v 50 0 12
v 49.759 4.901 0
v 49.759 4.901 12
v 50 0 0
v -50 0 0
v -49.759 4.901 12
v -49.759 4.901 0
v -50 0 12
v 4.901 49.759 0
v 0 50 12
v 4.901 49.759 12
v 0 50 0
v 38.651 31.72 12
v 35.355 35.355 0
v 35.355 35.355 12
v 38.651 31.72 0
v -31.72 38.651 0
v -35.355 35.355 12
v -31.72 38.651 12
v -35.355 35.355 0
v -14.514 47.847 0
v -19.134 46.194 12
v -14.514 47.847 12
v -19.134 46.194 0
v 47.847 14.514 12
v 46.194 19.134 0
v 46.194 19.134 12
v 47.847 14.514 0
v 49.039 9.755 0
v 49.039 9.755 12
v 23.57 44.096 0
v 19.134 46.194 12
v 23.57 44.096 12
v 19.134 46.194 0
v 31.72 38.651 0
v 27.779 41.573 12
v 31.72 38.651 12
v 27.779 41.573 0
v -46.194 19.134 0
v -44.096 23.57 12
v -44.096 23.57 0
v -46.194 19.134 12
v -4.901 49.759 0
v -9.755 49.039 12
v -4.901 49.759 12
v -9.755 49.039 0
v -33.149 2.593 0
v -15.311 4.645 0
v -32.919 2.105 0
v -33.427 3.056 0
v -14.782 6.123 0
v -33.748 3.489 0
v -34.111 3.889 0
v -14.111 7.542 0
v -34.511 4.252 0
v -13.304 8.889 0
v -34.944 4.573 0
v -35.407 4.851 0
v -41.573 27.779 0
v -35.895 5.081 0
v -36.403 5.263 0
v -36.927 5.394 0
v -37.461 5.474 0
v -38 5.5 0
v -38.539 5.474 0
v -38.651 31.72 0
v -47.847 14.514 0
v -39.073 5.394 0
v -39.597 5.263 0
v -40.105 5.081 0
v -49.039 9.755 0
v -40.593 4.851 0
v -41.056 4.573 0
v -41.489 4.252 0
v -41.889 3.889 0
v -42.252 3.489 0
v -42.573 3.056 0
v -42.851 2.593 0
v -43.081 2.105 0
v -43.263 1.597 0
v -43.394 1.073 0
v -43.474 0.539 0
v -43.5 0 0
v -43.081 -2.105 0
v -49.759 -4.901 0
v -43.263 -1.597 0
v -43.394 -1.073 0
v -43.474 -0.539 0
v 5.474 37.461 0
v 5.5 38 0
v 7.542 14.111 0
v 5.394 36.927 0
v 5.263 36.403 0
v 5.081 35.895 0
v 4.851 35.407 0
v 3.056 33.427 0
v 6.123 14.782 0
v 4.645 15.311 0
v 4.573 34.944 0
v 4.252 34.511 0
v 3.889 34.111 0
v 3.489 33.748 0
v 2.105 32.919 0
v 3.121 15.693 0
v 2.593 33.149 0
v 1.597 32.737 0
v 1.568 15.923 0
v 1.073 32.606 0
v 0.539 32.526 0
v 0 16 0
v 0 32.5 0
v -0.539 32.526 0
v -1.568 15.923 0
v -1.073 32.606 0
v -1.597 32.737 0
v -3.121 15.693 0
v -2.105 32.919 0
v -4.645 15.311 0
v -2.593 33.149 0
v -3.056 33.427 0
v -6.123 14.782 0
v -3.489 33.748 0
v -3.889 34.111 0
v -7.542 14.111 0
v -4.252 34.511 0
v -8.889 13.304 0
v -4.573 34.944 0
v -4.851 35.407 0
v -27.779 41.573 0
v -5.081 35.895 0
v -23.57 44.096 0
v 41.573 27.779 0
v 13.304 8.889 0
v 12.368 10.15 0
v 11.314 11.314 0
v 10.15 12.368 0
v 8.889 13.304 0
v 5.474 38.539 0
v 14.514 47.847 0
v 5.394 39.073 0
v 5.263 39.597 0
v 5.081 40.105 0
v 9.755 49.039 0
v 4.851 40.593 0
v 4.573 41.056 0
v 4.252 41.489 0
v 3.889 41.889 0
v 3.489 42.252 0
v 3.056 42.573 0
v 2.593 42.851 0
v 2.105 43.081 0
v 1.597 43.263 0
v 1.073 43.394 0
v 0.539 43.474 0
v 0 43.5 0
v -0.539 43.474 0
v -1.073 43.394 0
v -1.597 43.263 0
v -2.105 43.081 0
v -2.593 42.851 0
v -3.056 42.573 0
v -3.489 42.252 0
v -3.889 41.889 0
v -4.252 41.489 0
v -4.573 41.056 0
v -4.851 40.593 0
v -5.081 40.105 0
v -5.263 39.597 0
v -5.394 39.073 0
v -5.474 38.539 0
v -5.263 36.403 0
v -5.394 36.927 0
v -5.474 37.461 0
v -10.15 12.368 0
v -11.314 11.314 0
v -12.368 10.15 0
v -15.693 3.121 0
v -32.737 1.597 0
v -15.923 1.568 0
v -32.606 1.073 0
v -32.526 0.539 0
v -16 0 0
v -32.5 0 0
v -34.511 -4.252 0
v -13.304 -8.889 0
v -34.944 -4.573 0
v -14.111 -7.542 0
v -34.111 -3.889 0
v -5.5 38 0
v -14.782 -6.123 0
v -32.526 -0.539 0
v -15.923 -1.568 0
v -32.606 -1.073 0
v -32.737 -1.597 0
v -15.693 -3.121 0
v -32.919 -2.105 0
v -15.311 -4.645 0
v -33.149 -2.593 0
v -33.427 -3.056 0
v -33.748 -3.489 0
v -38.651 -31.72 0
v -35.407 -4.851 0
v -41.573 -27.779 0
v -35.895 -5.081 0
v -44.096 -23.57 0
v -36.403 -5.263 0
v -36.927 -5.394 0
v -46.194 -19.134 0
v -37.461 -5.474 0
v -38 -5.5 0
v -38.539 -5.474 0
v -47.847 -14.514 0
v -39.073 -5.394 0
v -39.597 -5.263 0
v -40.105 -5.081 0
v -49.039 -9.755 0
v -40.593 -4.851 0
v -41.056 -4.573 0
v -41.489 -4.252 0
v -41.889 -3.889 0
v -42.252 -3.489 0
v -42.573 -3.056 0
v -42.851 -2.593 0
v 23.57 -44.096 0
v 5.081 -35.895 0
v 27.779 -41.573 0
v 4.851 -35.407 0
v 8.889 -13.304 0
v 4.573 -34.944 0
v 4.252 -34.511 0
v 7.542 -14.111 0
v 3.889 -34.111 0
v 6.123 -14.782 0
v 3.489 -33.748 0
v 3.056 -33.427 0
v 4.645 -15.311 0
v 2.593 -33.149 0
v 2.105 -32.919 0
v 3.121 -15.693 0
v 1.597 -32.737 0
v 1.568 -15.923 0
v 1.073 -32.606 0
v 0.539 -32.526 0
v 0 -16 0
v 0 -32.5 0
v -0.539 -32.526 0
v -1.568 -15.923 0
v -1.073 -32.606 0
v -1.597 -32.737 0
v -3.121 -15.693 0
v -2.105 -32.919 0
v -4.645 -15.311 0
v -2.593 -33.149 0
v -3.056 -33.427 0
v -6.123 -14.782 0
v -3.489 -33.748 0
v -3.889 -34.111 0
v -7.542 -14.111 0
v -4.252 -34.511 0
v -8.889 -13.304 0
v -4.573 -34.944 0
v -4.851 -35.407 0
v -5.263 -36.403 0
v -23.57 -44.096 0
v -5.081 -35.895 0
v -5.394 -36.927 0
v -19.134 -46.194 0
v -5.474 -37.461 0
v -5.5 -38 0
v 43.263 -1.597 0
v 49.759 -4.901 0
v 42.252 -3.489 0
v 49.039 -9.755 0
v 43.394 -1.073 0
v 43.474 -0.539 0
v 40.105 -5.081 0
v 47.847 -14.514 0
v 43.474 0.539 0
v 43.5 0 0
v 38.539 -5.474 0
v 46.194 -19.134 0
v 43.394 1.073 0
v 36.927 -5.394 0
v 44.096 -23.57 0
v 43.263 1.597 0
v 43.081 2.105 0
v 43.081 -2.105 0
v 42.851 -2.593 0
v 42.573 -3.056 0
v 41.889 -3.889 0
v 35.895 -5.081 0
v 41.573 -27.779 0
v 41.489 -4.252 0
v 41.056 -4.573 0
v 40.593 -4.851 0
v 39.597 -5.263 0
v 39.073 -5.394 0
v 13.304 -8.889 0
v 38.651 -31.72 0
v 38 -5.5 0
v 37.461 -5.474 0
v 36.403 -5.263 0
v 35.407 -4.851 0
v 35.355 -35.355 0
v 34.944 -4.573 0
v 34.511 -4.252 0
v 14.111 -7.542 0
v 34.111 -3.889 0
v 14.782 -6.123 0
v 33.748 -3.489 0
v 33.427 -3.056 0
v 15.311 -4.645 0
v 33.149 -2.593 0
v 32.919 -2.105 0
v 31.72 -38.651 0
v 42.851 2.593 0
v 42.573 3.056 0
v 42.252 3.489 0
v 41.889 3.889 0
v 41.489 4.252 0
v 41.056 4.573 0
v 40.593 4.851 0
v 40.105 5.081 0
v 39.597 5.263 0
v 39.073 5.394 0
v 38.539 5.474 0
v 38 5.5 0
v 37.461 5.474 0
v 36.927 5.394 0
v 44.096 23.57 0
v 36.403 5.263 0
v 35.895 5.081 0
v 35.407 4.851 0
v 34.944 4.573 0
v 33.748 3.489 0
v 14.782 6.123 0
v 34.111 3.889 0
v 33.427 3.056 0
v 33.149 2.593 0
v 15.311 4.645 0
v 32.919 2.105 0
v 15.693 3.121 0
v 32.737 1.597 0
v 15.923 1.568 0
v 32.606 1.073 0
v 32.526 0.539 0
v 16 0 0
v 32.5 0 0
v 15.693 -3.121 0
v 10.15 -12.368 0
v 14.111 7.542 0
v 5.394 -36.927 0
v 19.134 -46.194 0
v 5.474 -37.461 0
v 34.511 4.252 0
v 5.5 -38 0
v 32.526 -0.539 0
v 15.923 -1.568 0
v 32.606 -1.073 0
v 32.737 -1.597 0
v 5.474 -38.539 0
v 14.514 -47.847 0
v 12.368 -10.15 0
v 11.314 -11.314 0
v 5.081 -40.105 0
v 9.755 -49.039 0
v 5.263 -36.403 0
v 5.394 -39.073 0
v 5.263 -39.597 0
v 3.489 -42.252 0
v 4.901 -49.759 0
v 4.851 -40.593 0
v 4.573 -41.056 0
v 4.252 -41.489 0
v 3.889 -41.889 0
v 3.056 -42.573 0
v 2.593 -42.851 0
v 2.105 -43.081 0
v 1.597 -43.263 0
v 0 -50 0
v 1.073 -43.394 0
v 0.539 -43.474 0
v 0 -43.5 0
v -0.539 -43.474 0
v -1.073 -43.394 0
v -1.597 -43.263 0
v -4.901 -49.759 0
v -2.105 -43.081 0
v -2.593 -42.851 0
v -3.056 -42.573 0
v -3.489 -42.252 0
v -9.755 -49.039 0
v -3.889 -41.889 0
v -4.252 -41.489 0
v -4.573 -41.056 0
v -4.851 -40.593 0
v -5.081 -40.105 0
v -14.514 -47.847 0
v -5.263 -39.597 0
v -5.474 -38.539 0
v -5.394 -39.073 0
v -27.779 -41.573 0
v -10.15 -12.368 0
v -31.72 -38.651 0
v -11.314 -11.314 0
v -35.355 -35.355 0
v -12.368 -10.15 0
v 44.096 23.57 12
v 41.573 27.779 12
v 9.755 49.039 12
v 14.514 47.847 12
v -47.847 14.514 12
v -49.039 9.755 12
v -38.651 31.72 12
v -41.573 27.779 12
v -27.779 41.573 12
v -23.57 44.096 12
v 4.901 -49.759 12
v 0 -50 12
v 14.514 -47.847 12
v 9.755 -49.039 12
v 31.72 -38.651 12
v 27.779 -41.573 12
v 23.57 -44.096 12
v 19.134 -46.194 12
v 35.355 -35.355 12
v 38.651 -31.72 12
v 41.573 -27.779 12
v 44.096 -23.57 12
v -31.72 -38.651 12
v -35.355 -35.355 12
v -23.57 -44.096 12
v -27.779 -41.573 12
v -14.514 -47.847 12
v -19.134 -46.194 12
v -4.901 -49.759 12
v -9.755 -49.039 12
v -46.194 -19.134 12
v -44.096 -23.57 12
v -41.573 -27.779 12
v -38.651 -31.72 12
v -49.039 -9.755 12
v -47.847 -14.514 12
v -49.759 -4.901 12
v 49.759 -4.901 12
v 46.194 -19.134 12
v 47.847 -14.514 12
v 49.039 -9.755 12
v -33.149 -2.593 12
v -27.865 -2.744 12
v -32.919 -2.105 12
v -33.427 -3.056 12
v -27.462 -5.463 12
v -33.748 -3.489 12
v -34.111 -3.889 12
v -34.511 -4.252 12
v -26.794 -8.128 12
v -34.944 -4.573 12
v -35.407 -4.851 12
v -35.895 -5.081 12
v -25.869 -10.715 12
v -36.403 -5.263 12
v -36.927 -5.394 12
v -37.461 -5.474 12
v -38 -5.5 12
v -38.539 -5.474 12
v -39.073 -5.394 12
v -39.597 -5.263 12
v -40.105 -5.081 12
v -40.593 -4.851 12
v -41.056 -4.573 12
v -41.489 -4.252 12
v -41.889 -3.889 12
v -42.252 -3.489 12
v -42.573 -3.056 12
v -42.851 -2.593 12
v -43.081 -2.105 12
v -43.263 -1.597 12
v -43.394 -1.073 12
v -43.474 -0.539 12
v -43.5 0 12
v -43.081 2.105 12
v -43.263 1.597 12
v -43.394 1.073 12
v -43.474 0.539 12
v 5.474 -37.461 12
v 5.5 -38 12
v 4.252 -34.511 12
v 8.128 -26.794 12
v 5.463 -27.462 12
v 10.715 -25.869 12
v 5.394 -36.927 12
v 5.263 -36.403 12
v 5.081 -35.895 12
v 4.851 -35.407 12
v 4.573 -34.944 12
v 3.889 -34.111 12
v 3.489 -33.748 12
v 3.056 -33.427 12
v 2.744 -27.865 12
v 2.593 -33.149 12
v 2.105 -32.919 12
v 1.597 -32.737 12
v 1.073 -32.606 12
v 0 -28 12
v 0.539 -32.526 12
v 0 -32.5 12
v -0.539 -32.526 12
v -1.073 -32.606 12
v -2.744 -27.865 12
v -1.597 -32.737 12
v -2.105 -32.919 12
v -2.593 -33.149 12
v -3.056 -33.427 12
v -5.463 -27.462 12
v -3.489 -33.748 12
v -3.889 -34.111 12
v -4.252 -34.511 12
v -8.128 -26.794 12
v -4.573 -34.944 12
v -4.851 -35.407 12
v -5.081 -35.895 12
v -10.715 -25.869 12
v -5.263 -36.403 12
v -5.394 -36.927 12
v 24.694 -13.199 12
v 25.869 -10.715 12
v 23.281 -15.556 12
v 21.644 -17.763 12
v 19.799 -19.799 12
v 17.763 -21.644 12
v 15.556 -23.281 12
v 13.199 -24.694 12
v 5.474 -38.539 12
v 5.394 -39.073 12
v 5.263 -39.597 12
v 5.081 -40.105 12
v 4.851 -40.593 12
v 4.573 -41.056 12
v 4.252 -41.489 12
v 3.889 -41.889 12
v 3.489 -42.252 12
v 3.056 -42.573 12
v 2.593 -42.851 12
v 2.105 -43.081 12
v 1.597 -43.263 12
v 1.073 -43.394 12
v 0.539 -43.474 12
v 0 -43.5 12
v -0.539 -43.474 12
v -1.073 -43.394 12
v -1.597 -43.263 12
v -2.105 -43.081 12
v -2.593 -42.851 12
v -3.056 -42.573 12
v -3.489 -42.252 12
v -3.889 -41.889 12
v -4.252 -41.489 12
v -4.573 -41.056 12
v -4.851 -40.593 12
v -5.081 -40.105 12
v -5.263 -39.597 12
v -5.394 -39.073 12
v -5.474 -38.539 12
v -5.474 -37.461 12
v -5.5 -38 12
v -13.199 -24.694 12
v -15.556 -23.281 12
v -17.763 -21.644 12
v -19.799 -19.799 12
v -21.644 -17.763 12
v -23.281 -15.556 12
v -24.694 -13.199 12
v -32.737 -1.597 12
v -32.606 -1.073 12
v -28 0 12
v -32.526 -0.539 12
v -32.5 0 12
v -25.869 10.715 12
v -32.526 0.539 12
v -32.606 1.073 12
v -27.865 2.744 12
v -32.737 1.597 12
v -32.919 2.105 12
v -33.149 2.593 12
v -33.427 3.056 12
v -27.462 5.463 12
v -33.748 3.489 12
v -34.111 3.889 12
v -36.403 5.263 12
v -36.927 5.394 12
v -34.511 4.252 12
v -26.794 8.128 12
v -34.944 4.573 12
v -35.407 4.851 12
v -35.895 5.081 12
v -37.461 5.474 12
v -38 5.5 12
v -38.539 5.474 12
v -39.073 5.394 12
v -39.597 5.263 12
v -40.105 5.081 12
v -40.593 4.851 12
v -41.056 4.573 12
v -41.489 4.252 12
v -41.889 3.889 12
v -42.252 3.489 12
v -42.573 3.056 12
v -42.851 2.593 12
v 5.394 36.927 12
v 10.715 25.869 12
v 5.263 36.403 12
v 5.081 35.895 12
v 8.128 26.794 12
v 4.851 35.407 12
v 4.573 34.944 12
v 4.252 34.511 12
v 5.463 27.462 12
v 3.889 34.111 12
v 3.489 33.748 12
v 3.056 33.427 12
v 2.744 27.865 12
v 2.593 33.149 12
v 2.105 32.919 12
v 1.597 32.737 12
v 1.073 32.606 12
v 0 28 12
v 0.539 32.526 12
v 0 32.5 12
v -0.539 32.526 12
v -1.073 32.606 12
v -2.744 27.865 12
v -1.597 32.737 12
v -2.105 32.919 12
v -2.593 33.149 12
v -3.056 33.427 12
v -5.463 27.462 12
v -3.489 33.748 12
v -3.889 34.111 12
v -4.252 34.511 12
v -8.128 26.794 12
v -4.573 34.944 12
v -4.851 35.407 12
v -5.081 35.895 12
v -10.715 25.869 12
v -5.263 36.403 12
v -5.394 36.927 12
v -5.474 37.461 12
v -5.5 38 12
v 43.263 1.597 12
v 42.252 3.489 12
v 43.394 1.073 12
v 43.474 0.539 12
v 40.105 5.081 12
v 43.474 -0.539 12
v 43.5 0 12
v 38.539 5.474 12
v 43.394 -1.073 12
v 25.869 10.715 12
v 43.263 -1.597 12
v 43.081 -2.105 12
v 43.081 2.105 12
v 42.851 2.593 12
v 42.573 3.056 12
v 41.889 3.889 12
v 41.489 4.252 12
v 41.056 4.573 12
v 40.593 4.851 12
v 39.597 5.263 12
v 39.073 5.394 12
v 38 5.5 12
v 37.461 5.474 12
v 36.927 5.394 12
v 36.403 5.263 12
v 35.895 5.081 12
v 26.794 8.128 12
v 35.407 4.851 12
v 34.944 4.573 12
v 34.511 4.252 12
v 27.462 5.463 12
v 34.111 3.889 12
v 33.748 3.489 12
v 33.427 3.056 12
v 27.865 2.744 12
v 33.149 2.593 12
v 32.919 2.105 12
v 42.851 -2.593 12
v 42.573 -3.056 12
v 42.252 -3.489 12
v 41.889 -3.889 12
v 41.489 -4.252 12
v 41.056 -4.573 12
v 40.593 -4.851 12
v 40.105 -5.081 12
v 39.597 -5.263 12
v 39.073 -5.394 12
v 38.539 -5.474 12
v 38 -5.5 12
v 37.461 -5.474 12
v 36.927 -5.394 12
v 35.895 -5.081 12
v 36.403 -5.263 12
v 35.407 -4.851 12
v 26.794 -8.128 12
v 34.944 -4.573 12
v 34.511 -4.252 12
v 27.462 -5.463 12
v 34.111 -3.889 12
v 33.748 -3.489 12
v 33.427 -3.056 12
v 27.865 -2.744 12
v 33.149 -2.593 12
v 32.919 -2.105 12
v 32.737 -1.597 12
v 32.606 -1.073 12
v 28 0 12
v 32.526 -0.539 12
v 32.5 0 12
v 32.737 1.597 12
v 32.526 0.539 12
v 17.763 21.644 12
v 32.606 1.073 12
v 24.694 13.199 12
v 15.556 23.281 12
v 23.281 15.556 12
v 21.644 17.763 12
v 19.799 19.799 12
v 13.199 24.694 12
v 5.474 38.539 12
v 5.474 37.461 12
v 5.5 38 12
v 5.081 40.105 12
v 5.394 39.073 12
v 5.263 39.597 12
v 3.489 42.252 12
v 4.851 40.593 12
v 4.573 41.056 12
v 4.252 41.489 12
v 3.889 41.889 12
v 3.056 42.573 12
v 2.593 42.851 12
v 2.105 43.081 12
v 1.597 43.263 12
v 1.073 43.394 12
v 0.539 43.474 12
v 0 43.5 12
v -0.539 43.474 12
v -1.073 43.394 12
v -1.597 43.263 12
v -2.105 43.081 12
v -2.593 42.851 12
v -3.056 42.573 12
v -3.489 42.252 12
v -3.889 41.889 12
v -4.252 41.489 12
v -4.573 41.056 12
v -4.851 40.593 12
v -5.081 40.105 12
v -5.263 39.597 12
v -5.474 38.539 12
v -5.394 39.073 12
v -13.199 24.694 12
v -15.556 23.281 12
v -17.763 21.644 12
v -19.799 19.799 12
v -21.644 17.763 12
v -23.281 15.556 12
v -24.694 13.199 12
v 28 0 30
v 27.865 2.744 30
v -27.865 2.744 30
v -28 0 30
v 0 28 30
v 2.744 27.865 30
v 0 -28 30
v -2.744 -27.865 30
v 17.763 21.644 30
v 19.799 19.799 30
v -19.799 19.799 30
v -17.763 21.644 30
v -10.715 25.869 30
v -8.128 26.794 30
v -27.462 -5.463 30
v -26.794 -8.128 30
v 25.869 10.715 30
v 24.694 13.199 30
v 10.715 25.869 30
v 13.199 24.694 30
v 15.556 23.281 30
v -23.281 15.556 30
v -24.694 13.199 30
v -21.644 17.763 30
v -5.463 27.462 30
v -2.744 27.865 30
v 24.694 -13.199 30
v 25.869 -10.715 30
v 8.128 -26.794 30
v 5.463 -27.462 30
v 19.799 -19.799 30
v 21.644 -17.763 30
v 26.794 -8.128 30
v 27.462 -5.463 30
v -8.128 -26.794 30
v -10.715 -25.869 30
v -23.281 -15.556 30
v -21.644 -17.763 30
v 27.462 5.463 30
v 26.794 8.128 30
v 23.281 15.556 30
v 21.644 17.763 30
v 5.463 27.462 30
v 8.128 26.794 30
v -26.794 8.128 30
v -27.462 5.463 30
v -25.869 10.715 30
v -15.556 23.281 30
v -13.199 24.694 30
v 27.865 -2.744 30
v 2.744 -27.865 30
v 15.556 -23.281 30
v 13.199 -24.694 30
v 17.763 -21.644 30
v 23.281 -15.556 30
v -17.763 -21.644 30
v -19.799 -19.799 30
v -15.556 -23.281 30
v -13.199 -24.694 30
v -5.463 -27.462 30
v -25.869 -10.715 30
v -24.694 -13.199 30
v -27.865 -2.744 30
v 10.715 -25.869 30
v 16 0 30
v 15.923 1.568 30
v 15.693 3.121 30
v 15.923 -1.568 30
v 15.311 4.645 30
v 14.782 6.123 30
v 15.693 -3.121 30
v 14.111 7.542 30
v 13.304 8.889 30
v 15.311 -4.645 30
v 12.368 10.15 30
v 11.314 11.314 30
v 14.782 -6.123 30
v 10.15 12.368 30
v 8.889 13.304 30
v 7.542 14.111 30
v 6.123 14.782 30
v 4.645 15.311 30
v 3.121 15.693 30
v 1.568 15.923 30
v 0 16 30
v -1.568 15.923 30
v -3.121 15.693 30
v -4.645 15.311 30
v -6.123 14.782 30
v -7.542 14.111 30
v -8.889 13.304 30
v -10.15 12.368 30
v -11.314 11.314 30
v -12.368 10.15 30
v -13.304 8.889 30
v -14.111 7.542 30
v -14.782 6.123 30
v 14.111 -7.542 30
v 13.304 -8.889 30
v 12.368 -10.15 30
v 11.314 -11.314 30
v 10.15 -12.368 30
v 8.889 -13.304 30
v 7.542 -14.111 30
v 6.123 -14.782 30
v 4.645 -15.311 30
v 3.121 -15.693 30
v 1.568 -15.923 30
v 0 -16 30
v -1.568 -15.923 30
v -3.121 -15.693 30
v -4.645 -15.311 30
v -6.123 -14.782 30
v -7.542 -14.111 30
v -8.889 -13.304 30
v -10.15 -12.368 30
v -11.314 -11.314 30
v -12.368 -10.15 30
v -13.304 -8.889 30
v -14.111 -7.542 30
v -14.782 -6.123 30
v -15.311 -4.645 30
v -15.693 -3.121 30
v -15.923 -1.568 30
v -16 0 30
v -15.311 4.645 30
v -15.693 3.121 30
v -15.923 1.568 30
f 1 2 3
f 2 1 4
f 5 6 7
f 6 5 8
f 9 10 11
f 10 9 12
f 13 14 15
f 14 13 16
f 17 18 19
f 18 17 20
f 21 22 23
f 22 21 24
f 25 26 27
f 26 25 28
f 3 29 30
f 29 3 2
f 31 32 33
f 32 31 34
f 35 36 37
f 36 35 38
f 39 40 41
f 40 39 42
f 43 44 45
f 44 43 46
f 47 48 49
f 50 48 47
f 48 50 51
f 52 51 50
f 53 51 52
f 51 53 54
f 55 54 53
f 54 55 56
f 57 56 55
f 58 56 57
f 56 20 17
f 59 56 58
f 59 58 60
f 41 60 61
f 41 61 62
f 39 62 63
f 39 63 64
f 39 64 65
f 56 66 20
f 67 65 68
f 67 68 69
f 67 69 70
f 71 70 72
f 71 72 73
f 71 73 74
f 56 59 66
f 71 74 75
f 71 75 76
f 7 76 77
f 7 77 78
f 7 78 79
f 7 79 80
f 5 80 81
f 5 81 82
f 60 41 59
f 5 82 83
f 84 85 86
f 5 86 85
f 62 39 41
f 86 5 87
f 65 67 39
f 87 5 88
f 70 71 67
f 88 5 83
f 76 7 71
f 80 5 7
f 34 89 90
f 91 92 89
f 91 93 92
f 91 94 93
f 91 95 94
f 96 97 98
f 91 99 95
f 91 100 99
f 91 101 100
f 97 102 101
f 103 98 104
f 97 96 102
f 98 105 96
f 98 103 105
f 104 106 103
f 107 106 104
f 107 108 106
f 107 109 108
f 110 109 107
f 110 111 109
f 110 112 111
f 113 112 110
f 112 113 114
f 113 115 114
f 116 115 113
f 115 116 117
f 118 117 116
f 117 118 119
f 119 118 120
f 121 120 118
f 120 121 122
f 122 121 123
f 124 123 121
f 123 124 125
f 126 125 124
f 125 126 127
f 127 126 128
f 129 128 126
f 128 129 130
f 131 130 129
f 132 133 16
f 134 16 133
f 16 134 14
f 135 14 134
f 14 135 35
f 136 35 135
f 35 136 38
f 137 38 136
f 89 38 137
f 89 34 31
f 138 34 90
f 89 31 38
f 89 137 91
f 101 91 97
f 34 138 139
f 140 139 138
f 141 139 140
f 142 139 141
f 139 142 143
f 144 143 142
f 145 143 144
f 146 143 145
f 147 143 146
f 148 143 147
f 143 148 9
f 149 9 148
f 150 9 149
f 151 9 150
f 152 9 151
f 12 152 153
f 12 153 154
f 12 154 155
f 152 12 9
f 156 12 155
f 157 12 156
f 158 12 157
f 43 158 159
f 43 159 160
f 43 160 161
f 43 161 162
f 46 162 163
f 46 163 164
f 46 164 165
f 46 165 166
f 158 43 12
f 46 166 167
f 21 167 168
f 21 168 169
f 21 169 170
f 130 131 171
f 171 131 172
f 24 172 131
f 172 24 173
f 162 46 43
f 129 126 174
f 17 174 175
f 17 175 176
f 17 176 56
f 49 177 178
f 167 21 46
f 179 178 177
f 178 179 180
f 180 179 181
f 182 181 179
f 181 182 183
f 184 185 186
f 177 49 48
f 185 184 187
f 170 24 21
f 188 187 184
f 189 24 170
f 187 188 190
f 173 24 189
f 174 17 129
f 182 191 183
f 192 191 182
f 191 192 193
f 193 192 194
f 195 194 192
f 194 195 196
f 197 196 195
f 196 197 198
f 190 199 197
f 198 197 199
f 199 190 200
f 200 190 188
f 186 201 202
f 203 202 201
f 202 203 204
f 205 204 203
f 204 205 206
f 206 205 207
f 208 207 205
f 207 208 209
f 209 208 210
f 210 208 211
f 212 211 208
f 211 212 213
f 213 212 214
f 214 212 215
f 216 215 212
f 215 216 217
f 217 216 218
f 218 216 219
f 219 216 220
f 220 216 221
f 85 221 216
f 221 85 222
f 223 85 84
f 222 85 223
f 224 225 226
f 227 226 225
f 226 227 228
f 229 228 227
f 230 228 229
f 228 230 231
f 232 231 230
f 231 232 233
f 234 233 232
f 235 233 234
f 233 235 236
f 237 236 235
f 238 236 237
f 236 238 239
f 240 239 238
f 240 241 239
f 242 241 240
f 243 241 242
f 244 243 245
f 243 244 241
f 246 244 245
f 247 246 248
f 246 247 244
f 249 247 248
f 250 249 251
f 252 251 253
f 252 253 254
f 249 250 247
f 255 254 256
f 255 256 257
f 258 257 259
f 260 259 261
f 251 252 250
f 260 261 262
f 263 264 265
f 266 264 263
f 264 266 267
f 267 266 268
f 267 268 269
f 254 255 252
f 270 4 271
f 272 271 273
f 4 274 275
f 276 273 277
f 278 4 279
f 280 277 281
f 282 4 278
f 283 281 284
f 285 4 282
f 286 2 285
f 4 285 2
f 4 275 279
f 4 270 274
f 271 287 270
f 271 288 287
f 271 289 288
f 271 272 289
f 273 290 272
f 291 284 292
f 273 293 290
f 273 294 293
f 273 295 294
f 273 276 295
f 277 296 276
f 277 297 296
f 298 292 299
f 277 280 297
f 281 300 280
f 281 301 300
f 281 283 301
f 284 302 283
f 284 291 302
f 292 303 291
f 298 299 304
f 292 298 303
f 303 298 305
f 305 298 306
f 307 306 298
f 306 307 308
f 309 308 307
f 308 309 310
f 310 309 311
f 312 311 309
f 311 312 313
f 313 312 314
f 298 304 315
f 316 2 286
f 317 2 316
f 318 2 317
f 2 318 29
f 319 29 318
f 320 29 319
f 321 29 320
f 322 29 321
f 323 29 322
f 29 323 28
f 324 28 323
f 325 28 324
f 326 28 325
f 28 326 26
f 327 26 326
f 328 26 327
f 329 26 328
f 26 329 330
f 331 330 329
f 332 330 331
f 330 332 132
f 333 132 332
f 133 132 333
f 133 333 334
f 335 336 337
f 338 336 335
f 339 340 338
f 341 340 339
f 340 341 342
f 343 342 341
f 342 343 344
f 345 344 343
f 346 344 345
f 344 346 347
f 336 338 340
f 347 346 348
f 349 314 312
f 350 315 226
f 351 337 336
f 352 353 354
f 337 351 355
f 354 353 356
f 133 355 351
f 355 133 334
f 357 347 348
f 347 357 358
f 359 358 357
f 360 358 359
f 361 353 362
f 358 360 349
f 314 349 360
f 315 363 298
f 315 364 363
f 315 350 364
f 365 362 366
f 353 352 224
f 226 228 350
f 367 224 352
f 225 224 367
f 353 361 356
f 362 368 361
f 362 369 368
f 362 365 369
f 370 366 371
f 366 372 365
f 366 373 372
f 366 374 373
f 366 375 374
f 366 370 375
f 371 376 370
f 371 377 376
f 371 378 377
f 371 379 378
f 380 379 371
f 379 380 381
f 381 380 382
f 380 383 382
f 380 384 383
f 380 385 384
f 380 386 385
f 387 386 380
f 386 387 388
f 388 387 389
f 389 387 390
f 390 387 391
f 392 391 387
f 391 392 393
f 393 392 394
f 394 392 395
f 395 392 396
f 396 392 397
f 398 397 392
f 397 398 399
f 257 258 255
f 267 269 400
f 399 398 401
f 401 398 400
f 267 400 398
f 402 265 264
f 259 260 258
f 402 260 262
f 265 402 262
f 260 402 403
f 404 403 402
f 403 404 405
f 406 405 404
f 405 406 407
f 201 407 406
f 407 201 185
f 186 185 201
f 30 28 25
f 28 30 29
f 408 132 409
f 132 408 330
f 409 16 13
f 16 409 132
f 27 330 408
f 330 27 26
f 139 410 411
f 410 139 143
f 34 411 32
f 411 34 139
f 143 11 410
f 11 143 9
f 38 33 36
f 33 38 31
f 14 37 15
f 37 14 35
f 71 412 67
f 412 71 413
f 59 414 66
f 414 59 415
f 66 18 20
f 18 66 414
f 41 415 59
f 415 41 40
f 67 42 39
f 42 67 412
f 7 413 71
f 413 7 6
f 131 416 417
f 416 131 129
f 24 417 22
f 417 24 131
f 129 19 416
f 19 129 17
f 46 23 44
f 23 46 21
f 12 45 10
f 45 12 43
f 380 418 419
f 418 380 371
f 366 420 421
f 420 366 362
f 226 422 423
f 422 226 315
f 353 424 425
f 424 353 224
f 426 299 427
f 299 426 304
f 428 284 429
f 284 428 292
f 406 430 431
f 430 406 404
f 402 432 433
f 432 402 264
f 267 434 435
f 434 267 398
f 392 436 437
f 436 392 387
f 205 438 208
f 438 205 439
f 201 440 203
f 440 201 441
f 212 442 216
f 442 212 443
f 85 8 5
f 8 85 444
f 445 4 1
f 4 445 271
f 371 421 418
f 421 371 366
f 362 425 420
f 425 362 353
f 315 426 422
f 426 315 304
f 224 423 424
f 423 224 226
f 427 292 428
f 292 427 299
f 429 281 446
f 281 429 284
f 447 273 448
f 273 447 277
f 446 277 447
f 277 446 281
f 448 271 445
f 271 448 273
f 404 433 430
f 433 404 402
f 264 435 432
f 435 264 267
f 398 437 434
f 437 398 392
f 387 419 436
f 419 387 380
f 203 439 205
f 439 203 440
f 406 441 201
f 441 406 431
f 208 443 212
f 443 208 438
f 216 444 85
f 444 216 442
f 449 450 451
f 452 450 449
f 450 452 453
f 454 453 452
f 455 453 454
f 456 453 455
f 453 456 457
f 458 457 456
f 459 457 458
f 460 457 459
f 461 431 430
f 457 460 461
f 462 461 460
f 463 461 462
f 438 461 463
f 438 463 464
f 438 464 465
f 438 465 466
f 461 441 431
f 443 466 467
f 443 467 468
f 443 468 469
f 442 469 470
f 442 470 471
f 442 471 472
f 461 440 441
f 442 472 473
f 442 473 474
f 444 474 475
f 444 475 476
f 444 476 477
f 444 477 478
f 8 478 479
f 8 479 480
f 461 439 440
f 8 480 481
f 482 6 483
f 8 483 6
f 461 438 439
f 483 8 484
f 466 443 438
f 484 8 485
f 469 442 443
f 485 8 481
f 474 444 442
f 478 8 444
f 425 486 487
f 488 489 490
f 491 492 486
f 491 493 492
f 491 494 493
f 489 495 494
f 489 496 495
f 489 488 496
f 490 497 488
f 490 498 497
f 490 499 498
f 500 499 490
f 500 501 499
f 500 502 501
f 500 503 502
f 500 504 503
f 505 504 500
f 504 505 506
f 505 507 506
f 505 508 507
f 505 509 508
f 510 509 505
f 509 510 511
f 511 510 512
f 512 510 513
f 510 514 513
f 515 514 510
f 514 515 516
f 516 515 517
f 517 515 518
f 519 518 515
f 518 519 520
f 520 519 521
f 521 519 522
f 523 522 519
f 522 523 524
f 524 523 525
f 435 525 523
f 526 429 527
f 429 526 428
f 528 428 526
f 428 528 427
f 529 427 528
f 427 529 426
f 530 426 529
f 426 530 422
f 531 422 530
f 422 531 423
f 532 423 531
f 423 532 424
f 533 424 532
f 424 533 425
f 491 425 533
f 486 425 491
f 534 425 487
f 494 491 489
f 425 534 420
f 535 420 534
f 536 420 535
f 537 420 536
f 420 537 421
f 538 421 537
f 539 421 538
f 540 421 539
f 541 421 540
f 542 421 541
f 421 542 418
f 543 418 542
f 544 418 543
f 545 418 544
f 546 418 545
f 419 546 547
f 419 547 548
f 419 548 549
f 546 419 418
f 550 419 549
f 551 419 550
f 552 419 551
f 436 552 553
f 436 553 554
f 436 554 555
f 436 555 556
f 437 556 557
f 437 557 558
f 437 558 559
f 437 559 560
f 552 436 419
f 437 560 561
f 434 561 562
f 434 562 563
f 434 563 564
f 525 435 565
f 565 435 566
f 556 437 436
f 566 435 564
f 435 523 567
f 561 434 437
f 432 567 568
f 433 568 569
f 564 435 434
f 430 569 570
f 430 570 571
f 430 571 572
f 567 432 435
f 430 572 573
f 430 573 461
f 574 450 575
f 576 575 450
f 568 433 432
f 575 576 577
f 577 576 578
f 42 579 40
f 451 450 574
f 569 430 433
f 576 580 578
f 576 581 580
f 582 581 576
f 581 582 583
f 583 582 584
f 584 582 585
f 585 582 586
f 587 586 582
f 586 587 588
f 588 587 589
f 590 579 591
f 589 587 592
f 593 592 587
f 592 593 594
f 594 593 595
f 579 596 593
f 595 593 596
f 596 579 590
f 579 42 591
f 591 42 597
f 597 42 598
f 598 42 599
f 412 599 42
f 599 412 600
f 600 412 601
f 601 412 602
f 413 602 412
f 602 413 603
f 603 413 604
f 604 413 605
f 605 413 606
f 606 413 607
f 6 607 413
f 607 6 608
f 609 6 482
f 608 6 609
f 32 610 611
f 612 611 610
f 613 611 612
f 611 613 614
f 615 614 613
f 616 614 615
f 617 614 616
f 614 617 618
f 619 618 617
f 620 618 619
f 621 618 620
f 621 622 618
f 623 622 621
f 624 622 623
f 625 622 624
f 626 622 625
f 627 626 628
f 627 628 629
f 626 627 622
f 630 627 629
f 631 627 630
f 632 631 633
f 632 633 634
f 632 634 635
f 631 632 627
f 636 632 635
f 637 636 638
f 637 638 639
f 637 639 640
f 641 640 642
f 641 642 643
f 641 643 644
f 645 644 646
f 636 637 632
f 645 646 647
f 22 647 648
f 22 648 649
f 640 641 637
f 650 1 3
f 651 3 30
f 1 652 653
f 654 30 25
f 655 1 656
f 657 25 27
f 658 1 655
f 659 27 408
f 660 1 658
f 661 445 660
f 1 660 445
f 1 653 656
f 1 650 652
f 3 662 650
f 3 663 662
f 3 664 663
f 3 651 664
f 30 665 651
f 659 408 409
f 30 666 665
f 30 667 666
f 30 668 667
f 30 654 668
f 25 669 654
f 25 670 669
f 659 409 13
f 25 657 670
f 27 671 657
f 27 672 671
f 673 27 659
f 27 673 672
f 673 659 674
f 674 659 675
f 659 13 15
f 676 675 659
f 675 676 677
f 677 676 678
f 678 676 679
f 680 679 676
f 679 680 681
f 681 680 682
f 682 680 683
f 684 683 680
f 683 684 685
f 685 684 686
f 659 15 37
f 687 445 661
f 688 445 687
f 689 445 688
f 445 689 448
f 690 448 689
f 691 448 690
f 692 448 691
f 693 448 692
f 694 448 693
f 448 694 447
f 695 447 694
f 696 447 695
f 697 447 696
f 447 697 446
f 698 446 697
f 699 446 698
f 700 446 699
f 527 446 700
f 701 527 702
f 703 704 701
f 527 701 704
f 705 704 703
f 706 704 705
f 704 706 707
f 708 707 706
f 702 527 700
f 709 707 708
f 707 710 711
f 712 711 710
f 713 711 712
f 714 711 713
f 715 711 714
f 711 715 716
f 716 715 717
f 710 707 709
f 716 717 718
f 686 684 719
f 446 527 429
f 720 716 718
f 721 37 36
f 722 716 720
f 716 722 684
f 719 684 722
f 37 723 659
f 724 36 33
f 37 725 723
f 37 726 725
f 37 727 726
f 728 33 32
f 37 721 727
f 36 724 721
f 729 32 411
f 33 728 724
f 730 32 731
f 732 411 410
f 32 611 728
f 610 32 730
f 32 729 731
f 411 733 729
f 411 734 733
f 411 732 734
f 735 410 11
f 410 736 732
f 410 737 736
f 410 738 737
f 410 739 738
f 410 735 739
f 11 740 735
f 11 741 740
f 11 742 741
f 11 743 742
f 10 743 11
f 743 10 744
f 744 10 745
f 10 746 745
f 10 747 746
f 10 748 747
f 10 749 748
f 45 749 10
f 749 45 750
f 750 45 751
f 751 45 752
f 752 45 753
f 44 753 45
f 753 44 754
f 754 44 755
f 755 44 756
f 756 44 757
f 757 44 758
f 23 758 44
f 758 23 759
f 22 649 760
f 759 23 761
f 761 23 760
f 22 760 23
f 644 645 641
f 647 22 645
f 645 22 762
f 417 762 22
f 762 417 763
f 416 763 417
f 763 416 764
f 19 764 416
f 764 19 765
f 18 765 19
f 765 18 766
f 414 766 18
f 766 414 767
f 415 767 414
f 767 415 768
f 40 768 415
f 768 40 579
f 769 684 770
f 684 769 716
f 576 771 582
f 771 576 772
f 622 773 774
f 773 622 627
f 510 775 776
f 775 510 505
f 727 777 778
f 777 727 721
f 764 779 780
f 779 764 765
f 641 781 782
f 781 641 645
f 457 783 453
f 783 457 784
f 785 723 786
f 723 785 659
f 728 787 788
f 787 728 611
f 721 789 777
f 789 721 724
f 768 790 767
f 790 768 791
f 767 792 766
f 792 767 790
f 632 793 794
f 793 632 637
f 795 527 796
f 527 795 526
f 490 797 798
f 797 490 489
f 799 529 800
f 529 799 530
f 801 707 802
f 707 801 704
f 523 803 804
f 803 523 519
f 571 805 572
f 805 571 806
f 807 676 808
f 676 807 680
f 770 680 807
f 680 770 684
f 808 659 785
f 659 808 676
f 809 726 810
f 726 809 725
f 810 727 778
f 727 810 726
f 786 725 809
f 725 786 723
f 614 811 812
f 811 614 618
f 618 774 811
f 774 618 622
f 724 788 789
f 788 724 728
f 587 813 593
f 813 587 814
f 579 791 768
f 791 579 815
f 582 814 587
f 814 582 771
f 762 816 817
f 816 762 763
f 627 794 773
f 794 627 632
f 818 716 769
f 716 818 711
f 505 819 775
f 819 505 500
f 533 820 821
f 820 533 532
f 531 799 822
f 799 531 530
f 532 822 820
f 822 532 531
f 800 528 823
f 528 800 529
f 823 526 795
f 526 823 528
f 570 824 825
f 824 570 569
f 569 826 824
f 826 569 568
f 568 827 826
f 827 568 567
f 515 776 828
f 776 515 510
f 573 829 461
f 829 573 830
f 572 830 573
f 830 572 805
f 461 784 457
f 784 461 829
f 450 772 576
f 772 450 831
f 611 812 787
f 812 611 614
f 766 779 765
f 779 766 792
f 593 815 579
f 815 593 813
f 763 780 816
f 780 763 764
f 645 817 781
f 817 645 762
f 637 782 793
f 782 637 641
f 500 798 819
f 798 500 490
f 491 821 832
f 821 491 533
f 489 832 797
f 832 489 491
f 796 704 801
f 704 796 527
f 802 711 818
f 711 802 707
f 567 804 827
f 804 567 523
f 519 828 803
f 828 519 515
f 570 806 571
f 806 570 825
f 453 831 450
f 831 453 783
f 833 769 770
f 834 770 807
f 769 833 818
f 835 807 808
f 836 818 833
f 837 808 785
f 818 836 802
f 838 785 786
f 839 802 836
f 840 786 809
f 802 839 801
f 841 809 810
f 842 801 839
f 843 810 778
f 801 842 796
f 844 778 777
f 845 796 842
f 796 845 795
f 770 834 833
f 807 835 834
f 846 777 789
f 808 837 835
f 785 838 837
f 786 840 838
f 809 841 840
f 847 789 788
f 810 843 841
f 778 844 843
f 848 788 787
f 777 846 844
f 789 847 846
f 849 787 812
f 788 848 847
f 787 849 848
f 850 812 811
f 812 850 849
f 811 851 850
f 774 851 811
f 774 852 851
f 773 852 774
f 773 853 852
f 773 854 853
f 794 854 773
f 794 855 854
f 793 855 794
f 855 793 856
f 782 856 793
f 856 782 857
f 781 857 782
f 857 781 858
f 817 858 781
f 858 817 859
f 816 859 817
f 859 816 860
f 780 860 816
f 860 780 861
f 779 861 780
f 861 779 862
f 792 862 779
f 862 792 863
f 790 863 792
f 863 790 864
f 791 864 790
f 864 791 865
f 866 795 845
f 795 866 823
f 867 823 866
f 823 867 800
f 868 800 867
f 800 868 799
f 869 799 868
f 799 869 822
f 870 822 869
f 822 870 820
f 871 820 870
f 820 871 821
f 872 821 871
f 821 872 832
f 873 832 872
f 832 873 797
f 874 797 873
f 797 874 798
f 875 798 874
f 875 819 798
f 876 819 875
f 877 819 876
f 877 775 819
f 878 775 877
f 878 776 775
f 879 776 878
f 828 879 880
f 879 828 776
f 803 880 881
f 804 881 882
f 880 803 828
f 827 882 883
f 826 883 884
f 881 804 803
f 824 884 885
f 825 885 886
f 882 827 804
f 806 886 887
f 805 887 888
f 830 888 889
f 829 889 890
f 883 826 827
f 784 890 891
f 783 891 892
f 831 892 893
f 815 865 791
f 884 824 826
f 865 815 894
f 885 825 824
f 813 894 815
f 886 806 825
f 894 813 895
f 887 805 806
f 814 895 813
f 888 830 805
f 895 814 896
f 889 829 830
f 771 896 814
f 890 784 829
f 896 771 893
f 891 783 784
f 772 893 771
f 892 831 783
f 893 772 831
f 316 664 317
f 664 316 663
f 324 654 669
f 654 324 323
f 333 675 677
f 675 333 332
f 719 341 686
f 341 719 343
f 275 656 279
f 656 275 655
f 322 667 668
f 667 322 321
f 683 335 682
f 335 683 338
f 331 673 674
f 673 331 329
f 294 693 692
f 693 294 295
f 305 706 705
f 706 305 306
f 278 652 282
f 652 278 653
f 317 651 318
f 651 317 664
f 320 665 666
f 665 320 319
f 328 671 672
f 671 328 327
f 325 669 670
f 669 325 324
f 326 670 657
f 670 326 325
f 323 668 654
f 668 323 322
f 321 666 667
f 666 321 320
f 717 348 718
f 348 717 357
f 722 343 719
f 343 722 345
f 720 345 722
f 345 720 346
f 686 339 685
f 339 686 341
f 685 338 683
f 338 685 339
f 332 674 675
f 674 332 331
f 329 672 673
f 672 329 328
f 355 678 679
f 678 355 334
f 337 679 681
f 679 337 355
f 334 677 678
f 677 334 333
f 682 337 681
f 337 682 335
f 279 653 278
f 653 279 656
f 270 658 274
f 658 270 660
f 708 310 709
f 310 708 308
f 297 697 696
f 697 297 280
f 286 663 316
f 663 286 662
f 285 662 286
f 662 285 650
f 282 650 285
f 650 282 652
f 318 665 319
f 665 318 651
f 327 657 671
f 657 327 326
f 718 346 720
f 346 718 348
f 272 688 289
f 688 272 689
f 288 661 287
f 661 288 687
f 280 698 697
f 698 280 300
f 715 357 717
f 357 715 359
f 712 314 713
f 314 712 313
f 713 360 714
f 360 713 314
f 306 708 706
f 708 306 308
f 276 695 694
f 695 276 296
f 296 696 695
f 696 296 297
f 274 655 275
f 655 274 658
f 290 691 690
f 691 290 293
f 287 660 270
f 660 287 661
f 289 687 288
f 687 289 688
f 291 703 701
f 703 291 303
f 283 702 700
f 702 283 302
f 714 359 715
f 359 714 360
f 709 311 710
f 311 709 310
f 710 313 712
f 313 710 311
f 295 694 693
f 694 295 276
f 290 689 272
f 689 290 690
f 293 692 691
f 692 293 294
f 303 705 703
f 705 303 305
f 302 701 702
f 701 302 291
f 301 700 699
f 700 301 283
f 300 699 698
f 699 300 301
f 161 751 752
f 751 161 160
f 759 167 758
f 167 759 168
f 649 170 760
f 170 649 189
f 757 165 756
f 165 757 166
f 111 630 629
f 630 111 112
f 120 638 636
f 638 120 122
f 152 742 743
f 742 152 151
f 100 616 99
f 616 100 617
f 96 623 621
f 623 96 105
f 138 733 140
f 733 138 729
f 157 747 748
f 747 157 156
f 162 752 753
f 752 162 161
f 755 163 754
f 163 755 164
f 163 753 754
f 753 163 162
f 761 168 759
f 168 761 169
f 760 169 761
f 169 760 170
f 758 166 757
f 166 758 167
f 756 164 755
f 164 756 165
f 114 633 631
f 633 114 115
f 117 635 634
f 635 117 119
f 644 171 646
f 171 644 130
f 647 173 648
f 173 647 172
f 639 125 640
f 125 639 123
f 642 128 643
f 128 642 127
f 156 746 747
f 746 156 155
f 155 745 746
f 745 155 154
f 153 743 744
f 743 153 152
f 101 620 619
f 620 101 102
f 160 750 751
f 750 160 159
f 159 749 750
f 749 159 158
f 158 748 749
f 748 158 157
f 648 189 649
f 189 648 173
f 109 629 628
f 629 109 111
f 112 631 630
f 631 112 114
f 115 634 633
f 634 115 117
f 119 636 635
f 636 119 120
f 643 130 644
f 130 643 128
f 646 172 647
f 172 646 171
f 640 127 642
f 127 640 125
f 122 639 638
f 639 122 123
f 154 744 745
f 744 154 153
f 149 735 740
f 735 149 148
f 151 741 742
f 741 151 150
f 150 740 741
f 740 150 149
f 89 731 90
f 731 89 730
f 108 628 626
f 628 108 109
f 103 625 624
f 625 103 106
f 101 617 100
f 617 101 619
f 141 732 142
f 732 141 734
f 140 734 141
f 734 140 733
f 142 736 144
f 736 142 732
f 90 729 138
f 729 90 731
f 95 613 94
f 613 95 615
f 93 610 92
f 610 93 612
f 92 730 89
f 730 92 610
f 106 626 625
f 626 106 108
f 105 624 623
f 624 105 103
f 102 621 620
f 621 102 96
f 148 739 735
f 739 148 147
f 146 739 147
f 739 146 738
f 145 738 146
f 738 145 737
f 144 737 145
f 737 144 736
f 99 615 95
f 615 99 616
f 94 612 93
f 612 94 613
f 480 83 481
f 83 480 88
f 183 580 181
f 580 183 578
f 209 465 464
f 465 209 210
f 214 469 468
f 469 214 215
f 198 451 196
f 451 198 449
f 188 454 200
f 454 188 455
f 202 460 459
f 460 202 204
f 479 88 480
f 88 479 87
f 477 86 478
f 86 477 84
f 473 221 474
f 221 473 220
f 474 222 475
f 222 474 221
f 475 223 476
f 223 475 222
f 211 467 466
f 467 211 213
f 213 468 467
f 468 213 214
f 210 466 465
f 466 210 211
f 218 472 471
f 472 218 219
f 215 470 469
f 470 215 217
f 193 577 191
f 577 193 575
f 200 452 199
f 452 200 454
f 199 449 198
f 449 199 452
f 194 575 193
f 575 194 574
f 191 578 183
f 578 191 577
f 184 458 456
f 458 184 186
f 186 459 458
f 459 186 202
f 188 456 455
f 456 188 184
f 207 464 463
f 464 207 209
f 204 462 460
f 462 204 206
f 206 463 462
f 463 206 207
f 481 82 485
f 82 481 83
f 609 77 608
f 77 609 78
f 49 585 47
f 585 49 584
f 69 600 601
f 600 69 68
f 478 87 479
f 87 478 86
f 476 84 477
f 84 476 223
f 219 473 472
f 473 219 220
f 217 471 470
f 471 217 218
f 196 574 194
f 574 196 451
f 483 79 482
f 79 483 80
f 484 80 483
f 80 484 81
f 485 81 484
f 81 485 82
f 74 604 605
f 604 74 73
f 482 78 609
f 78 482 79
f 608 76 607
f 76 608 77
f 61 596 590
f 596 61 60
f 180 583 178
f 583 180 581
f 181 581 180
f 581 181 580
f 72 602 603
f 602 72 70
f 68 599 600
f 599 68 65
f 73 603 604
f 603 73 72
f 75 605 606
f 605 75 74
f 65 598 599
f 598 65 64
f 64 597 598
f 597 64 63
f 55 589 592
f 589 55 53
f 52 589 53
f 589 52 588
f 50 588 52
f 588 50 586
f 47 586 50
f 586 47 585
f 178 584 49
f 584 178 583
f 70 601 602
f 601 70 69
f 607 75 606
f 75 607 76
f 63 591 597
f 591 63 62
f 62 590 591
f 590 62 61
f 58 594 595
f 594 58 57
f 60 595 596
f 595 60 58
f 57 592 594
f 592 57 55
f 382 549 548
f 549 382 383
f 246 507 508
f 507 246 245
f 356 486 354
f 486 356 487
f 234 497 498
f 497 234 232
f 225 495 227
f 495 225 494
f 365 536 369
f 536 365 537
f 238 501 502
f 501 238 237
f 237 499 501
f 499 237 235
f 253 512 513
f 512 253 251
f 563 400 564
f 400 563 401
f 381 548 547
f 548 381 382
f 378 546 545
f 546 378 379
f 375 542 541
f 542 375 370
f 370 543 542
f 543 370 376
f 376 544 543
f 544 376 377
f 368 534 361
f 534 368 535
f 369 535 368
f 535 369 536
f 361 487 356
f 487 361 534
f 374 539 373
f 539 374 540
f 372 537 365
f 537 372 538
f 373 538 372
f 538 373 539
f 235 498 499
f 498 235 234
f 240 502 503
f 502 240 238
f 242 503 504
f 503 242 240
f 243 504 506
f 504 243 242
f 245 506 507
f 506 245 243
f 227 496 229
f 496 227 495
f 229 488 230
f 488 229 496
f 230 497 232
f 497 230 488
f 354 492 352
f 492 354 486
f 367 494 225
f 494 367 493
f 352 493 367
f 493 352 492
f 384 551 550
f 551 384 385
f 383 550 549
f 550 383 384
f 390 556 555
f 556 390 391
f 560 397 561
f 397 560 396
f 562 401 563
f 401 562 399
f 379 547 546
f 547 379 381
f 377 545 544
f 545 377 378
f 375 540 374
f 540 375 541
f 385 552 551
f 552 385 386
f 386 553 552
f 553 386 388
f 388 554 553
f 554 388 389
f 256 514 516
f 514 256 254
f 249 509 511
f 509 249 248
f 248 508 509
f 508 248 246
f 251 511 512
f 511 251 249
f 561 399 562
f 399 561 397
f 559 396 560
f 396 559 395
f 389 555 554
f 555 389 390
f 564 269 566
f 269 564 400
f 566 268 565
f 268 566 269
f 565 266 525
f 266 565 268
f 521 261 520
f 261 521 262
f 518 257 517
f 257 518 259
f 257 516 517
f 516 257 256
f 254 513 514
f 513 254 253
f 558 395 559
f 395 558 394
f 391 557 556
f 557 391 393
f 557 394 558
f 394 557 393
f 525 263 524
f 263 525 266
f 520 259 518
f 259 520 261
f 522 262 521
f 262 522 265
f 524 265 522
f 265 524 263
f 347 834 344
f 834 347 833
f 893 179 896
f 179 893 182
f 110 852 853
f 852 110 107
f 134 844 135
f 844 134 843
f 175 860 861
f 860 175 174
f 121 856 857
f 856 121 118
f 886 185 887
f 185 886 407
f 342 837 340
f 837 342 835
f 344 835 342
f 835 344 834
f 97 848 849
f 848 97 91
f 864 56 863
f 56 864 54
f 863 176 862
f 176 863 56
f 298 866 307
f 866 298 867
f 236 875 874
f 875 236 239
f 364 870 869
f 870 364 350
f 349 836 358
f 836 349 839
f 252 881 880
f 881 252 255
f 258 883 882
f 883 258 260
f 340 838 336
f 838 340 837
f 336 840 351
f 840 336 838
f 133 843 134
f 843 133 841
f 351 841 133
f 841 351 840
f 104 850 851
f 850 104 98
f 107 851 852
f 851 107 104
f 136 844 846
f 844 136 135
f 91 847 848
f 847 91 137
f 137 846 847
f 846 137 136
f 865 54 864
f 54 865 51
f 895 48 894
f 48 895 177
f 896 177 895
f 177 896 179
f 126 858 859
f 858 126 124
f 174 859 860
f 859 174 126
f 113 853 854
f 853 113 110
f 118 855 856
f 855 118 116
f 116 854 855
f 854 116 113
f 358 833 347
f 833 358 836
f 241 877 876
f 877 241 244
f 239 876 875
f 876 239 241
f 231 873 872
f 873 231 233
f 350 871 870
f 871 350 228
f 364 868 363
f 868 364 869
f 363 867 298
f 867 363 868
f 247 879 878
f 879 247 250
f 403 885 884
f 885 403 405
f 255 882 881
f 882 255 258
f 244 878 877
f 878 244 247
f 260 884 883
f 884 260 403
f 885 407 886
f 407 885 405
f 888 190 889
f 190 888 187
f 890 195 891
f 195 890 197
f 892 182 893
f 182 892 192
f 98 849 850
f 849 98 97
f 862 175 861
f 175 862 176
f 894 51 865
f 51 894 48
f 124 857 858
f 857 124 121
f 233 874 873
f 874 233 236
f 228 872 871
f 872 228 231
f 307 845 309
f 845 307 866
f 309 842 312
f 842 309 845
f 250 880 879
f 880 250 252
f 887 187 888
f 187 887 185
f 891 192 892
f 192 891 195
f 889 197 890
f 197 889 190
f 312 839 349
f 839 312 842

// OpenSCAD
// Original MechIntel educational model. CC0-1.0. Units: mm.
// Not a standardized or load-rated component.
$fn=96;
diameter=100; thickness=12; hub=56; hub_height=18; bore=32; bolt_circle=76;
$fn=64;
difference(){
 union(){cylinder(d=diameter,h=thickness);translate([0,0,thickness]) cylinder(d=hub,h=hub_height);}
 translate([0,0,-1]) cylinder(d=bore,h=thickness+hub_height+2);
 for(a=[0,90,180,270]) rotate([0,0,a]) translate([bolt_circle/2,0,-1]) cylinder(d=11,h=thickness+2);
}
